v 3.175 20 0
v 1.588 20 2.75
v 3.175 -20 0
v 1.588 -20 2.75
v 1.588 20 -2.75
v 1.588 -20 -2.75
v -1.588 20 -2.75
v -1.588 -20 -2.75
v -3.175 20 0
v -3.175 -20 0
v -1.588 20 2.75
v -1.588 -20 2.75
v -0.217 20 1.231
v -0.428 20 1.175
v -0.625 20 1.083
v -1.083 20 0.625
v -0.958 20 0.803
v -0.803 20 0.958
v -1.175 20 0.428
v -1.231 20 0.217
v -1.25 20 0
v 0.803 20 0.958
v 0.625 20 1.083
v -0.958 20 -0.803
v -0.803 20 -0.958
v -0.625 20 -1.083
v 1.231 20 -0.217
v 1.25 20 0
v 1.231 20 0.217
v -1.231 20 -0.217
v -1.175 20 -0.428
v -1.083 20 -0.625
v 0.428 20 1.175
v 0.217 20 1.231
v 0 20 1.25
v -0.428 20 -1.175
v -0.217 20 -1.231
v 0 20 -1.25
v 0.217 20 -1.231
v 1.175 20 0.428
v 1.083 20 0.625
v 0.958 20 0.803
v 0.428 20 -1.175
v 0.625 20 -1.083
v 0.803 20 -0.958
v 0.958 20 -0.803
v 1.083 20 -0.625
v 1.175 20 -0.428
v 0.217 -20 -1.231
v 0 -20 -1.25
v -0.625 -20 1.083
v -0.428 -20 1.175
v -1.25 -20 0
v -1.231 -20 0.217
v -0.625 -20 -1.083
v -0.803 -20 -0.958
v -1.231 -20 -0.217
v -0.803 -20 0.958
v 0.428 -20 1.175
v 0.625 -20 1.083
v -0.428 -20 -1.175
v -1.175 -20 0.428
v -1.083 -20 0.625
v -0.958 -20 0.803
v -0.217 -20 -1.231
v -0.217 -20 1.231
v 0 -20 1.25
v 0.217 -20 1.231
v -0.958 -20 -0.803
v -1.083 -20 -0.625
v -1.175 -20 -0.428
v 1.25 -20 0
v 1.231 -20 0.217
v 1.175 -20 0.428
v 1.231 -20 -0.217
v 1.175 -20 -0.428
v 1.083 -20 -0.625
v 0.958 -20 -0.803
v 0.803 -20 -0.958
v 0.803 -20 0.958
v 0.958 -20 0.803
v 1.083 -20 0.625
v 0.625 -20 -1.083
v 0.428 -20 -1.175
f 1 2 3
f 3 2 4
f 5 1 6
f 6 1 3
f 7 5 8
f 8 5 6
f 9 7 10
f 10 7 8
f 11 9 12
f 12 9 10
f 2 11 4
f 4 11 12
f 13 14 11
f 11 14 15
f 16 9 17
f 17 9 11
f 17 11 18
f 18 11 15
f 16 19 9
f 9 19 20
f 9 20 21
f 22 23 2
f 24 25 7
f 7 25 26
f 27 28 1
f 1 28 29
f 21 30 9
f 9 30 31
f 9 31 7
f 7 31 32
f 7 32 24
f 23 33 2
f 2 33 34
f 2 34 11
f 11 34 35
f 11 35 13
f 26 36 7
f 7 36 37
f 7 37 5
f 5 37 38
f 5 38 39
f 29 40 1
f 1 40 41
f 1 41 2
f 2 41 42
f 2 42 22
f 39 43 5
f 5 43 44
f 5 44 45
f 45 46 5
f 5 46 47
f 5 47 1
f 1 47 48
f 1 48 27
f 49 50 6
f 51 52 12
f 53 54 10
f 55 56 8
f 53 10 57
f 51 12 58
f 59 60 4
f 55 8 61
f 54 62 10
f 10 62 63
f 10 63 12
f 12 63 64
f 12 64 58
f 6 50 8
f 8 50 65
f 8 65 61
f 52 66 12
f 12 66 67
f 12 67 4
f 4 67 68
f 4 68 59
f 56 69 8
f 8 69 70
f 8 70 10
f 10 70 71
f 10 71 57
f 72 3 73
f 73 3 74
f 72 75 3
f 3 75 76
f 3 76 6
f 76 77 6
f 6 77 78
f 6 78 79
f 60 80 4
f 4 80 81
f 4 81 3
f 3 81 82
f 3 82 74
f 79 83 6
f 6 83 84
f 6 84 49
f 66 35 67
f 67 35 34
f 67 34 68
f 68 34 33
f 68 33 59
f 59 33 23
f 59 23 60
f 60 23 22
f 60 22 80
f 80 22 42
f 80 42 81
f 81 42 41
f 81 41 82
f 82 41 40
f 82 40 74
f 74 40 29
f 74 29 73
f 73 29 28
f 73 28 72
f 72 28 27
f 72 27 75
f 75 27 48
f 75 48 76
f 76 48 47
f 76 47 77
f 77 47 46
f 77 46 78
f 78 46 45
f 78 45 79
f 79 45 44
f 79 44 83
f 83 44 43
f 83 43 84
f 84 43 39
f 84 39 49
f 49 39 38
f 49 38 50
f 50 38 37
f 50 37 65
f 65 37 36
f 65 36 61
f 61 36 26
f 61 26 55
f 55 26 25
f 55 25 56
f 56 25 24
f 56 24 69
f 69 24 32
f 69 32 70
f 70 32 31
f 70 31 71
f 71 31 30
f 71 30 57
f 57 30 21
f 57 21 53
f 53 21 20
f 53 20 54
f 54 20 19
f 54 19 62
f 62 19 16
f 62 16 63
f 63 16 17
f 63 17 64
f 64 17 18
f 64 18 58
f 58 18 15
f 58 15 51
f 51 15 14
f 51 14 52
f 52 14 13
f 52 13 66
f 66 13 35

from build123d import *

# Parameters (mm, degrees)
BOSS_EXTRUDE1_DEPTH = 20
M3_TAPPED_HOLE1_D   = 2.5


with BuildPart() as part:
    # Sketch1 → Boss-Extrude1 (new body, symmetric)
    with BuildSketch(Plane(origin=(0, 0, 0), x_dir=(1, 0, 0), z_dir=(0, 1, 0))):
        Polygon((3.175426481, 0), (1.58771324, 2.75), (-1.58771324, 2.75), (-3.175426481, 0), (-1.58771324, -2.75), (1.58771324, -2.75), align=None)
    extrude(amount=BOSS_EXTRUDE1_DEPTH, both=True)

    # M3 Tapped Hole1 (through all)
    with Locations(Plane(origin=(0, 20, 0), x_dir=(1, 0, 0), z_dir=(0, 1, 0))):
        with Locations((0, 0)):
            Hole(M3_TAPPED_HOLE1_D / 2)


solid = part.part
